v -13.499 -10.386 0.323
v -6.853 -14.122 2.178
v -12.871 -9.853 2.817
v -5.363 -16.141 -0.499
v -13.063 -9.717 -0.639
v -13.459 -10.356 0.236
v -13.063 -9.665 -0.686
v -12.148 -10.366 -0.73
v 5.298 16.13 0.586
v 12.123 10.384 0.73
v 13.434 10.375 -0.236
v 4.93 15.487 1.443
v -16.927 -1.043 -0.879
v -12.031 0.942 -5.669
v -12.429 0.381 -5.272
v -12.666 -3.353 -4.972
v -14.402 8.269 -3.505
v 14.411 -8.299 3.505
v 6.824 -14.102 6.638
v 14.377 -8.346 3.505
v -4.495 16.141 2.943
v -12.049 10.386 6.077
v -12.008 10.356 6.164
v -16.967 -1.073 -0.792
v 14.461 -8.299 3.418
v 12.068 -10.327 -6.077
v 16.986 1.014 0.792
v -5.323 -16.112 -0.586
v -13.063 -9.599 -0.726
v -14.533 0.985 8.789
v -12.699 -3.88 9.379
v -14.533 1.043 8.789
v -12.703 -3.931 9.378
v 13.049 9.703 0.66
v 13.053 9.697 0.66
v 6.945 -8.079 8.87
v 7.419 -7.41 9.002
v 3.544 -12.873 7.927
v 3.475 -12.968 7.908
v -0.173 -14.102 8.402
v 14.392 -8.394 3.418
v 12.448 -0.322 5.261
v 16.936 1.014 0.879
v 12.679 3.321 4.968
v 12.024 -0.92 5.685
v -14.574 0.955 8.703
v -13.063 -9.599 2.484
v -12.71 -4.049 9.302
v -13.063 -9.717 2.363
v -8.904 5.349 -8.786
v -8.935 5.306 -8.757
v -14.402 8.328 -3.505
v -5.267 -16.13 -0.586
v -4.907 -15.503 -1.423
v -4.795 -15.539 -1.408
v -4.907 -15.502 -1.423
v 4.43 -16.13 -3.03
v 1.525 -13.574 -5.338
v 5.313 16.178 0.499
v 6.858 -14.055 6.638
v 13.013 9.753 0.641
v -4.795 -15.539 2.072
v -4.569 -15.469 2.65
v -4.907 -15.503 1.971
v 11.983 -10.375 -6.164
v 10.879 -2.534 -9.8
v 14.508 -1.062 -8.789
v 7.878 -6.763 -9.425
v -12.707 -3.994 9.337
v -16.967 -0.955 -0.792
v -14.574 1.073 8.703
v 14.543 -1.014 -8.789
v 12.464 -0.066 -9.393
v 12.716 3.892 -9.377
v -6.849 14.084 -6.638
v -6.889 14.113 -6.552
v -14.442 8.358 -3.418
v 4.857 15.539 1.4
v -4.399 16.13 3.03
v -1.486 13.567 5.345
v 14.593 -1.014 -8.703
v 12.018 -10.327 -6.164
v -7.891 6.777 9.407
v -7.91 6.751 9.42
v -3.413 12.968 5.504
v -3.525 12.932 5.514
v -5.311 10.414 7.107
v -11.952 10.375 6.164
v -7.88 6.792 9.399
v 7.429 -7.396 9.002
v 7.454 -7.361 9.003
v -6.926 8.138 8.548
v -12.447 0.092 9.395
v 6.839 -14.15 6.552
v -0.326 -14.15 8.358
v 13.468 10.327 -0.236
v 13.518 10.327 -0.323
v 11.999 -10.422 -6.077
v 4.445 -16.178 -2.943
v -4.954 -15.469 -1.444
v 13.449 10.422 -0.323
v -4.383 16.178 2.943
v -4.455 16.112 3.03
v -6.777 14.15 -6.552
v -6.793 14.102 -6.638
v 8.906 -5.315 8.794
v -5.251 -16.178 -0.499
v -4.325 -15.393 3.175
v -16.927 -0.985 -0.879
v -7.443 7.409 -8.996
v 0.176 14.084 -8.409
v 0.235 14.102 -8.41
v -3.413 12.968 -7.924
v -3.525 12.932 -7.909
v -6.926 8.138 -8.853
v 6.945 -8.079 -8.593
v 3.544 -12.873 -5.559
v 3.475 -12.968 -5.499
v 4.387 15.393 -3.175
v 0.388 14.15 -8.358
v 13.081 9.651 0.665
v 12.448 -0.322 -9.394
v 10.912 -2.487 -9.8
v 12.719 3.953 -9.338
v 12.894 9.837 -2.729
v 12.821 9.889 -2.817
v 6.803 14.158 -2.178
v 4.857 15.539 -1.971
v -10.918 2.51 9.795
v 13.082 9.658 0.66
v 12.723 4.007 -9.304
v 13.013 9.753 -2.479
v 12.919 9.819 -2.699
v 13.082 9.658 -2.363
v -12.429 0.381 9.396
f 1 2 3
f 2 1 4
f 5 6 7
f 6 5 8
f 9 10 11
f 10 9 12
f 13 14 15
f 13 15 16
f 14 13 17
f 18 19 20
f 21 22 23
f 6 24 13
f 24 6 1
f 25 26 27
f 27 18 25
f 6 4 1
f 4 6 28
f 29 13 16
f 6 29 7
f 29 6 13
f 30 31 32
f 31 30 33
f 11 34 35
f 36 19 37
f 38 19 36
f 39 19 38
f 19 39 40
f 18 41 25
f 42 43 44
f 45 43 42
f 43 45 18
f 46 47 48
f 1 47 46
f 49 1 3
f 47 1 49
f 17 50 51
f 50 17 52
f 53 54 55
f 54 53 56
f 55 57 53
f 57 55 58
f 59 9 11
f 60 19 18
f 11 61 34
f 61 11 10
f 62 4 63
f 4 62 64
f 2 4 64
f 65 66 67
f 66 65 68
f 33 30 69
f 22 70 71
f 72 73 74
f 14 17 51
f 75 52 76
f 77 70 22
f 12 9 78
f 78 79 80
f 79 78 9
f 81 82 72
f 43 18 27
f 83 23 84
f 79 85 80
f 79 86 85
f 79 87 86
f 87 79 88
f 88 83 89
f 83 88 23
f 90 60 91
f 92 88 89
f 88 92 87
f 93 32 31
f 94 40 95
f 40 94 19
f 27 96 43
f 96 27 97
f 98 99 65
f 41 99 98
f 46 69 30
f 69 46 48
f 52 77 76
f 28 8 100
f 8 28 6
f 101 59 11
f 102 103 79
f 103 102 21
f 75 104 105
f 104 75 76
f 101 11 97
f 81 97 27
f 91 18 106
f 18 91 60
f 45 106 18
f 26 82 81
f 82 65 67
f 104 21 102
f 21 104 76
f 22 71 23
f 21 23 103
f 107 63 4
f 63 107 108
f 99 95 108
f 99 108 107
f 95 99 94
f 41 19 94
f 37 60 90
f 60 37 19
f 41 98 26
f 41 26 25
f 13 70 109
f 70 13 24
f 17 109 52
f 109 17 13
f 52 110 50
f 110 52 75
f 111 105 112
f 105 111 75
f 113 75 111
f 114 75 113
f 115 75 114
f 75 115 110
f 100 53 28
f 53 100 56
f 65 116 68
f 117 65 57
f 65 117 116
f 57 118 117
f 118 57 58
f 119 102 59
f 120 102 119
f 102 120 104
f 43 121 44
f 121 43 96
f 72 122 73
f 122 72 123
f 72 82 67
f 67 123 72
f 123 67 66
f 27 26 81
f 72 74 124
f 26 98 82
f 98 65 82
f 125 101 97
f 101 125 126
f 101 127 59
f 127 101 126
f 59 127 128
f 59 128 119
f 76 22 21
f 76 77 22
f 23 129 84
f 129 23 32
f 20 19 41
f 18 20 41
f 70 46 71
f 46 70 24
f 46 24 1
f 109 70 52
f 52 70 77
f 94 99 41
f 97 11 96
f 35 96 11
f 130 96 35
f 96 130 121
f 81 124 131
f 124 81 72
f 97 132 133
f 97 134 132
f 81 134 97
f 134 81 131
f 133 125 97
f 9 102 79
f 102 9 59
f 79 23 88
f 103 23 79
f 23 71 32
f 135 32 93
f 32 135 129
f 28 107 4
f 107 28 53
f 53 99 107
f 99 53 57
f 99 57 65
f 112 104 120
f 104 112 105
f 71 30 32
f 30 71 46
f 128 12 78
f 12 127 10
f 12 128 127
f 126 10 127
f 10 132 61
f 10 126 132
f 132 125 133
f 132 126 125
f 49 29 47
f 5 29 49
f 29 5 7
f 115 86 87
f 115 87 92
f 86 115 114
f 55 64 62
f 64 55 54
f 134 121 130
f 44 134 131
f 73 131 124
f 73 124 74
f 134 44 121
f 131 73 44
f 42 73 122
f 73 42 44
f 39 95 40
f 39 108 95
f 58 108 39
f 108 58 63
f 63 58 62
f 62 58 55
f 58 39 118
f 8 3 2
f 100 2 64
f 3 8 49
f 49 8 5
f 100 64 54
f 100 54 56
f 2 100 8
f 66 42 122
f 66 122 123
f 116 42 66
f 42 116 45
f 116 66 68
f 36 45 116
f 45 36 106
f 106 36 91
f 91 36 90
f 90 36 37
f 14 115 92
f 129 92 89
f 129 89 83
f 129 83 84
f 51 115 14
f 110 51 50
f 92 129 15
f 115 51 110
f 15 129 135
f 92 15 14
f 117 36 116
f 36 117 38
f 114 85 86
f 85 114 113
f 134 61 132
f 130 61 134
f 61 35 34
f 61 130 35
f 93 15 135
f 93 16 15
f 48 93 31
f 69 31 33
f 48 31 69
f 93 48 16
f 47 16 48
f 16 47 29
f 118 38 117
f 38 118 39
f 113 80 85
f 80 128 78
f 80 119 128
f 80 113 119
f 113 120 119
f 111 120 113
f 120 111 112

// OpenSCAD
// Auto-generated OpenSCAD file

    inner_points = 10*[[0.14248327341962527, 1.0649917302561571, -1.3090169943752274], [0.9580903383196593, 0.4863855466691237, -1.3090169943748198], [-0.9580910891193597, -0.48638509736213764, 1.3090169943748198], [-0.14248402421932574, -1.0649912809491708, 1.3090169943752274], [-0.4078039078494043, 0.28930331644652235, -1.6180339887500987], [0.4078031570506297, -0.289302867140511, -1.618033988749691], [0.4825794550170831, 1.5443935346701905, -0.5000000000003272], [1.298186519917117, 0.965787351083157, -0.4999999999999196], [-1.2981872707168176, -0.965786901776171, 0.4999999999999196], [-0.4825802058167836, -1.5443930853632042, 0.5000000000003272], [-0.4078039078503302, 0.28930331644749707, 1.618033988749691], [0.40780315704970377, -0.2893028671395363, 1.6180339887500987], [-0.9580910891186109, -0.48638509736292634, -1.3090169943750751], [-0.14248402421857673, -1.0649912809499593, -1.3090169943746672], [0.4825794550167972, 1.544393534670492, 0.4999999999996728], [1.2981865199168312, 0.9657873510834587, 0.5000000000000806], [-1.2981872707165318, -0.9657869017764726, -0.5000000000000806], [-0.48258020581649774, -1.5443930853635057, -0.4999999999996728], [0.14248327341887626, 1.0649917302569456, 1.3090169943746672], [0.9580903383189104, 0.4863855466699124, 1.3090169943750751], [-0.6844982809436438, 0.8078895934640433, -0.8090169943753867], [1.2347847114134358, -0.032200730347909934, -0.499999999999637], [-1.2347854622131365, 0.032201179654895995, 0.499999999999637], [0.6844975301439434, -0.8078891441570573, 0.8090169943753867], [-0.3444020993461857, 1.2872913978780771, -4.862776847858186e-13], [0.6844975301444062, -0.8078891441575446, -0.8090169943745082], [-0.6844982809441066, 0.8078895934645307, 0.8090169943745082], [0.3444013485464852, -1.2872909485710908, 4.862776847858186e-13], [-1.2347854622128502, 0.03220117965459479, -0.5000000000003629], [1.2347847114131496, -0.03220073034760873, 0.5000000000003629]];

    outer_points = 10*[[1.6886306591457743, 0.10140860074207245, 0.07922614112991666], [1.4492611727633173, -0.10140860074207245, -0.8702829066264164], [-1.4492611727633173, 0.10140860074207245, 0.8702829066264164], [-1.6886306591457743, -0.10140860074207245, -0.07922614112991666], [1.3418365432044954, 1.0326989450942865, -0.032273346155188454], [1.1024670568220385, 0.8298817436101416, -0.9817823939115216], [1.4361407617027524, -0.8298817436101416, 0.34180402710957575], [1.1967712753202955, -1.0326989450942865, -0.6077050206467574], [-1.1967712753202955, 1.0326989450942865, 0.6077050206467574], [-1.4361407617027524, 0.8298817436101416, -0.34180402710957575], [-1.1024670568220385, -0.8298817436101416, 0.9817823939115216], [-1.3418365432044954, -1.0326989450942865, 0.032273346155188454], [0.5282219790700129, 1.6082680312985487, 0.049894579668983724], [0.28885249268755586, 1.4054508298144037, -0.8996144680873494], [0.6808094098826893, -1.4054508298144037, 0.6551644840336533], [0.44143992350023237, -1.6082680312985487, -0.2943445637226797], [-0.44143992350023237, 1.6082680312985487, 0.2943445637226797], [-0.6808094098826893, 1.4054508298144037, -0.6551644840336533], [-0.28885249268755586, -1.4054508298144037, 0.8996144680873494], [-0.5282219790700129, -1.6082680312985487, -0.049894579668983724], [1.0169691649835269, 0.46543823413525565, 0.7244805586051959], [0.551976750971019, -0.46543823413525565, -1.1200089413534458], [-0.551976750971019, 0.46543823413525565, 1.1200089413534458], [-1.0169691649835269, -0.46543823413525565, -0.7244805586051959], [0.7644792675405051, -0.4658521102169585, 0.987058444584855], [0.2051826350297401, 0.4658521102169585, -1.231508428638551], [-0.2051826350297401, -0.4658521102169585, 1.231508428638551], [-0.7644792675405051, 0.4658521102169585, -0.987058444584855], [0.20335460084904425, 1.0410073203395176, 0.8066484844293681], [-0.20335460084904425, -1.0410073203395176, -0.8066484844293681]];

    // Convex hull for inner set (I)
    module inner_hull() {
        hull() {
            for (p = inner_points) {
                translate(p) sphere(r=0.1);
            }
        }
    }

    // Convex hull for outer set (O) minus inner hull (O \ I)
    module outer_minus_inner() {
        difference() {
            hull() {
                for (p = outer_points) {
                    translate(p) sphere(r=0.1);
                }
            }
            inner_hull(); // Subtract inner hull
        }
    }

    // Convex hull for outer set (O) minus all translated inner hulls
    module outer_minus_AllTranslationInner() {
        difference() {
            hull() {
                for (p = outer_points) {
                    translate(p) sphere(r=0.1);
                }
            }
            hull() {
                translate([0,0,50]) inner_hull();
                translate([0,0,-50]) inner_hull();
            }; // Subtract translated inner hulls
        }
    }

    // Difference between outer_minus_inner and outer_minus_AllTranslationInner
    module outer_minus_inner_diff() {
        difference() {
            // Outer minus inner
            difference() {
                hull() {
                    for (p = outer_points) {
                        translate(p) sphere(r=0.1);
                    }
                }
                inner_hull();
            }

            // Subtract Outer minus AllTranslationInner
            difference() {
                hull() {
                    for (p = outer_points) {
                        translate(p) sphere(r=0.1);
                    }
                }
                hull() {
                    translate([0,0,50]) inner_hull();
                    translate([0,0,-50]) inner_hull();
                };
            }
        }
    }

    // Rendering all with colors applied
    color([0, 1, 0, 1]) outer_minus_AllTranslationInner(); // Opaque green
    
